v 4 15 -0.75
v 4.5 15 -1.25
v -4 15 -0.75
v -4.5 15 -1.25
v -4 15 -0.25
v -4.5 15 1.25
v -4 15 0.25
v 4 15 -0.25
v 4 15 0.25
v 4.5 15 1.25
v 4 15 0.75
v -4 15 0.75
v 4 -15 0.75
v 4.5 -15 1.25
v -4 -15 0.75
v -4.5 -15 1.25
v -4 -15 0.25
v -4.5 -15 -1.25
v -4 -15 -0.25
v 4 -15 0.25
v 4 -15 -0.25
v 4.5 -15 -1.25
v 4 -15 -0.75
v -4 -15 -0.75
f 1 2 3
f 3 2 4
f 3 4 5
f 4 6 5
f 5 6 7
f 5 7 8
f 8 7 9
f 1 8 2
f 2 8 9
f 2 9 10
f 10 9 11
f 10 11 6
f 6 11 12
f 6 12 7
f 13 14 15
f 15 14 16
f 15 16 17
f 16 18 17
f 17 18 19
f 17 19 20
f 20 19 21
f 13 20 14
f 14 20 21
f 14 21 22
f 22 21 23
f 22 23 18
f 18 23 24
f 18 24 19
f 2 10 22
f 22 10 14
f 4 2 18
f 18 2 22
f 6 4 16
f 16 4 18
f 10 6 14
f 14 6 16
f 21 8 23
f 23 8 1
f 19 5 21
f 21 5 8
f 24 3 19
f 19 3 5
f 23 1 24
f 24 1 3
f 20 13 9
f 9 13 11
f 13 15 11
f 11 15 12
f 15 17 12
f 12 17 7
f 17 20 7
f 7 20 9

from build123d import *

# Parameters (mm, degrees)
SKETCH1_W           = 9
SKETCH1_H           = 2.5
BOSS_EXTRUDE1_DEPTH = 15
CUT_EXTRUDE1_START  = -31
SKETCH2_W           = 8
SKETCH2_H           = 0.5
CUT_EXTRUDE1_DEPTH  = 32


with BuildPart() as part:
    # Sketch1 → Boss-Extrude1 (new body, symmetric)
    with BuildSketch(Plane(origin=(0, 0, 0), x_dir=(1, 0, 0), z_dir=(0, 1, 0))):
        Rectangle(SKETCH1_W, SKETCH1_H)
    extrude(amount=BOSS_EXTRUDE1_DEPTH, both=True)

    # Sketch2 → Cut-Extrude1 (cut)
    with BuildSketch(Plane(origin=(0, 15, 0), x_dir=(1, 0, 0), z_dir=(0, 1, 0)).offset(CUT_EXTRUDE1_START)):
        with Locations((0, 0.5)):
            Rectangle(SKETCH2_W, SKETCH2_H)
    cut_extrude1 = extrude(amount=CUT_EXTRUDE1_DEPTH, mode=Mode.SUBTRACT)

    # Mirror1: Cut-Extrude1 across plane
    add(cut_extrude1.mirror(Plane.XY), mode=Mode.SUBTRACT)


solid = part.part
